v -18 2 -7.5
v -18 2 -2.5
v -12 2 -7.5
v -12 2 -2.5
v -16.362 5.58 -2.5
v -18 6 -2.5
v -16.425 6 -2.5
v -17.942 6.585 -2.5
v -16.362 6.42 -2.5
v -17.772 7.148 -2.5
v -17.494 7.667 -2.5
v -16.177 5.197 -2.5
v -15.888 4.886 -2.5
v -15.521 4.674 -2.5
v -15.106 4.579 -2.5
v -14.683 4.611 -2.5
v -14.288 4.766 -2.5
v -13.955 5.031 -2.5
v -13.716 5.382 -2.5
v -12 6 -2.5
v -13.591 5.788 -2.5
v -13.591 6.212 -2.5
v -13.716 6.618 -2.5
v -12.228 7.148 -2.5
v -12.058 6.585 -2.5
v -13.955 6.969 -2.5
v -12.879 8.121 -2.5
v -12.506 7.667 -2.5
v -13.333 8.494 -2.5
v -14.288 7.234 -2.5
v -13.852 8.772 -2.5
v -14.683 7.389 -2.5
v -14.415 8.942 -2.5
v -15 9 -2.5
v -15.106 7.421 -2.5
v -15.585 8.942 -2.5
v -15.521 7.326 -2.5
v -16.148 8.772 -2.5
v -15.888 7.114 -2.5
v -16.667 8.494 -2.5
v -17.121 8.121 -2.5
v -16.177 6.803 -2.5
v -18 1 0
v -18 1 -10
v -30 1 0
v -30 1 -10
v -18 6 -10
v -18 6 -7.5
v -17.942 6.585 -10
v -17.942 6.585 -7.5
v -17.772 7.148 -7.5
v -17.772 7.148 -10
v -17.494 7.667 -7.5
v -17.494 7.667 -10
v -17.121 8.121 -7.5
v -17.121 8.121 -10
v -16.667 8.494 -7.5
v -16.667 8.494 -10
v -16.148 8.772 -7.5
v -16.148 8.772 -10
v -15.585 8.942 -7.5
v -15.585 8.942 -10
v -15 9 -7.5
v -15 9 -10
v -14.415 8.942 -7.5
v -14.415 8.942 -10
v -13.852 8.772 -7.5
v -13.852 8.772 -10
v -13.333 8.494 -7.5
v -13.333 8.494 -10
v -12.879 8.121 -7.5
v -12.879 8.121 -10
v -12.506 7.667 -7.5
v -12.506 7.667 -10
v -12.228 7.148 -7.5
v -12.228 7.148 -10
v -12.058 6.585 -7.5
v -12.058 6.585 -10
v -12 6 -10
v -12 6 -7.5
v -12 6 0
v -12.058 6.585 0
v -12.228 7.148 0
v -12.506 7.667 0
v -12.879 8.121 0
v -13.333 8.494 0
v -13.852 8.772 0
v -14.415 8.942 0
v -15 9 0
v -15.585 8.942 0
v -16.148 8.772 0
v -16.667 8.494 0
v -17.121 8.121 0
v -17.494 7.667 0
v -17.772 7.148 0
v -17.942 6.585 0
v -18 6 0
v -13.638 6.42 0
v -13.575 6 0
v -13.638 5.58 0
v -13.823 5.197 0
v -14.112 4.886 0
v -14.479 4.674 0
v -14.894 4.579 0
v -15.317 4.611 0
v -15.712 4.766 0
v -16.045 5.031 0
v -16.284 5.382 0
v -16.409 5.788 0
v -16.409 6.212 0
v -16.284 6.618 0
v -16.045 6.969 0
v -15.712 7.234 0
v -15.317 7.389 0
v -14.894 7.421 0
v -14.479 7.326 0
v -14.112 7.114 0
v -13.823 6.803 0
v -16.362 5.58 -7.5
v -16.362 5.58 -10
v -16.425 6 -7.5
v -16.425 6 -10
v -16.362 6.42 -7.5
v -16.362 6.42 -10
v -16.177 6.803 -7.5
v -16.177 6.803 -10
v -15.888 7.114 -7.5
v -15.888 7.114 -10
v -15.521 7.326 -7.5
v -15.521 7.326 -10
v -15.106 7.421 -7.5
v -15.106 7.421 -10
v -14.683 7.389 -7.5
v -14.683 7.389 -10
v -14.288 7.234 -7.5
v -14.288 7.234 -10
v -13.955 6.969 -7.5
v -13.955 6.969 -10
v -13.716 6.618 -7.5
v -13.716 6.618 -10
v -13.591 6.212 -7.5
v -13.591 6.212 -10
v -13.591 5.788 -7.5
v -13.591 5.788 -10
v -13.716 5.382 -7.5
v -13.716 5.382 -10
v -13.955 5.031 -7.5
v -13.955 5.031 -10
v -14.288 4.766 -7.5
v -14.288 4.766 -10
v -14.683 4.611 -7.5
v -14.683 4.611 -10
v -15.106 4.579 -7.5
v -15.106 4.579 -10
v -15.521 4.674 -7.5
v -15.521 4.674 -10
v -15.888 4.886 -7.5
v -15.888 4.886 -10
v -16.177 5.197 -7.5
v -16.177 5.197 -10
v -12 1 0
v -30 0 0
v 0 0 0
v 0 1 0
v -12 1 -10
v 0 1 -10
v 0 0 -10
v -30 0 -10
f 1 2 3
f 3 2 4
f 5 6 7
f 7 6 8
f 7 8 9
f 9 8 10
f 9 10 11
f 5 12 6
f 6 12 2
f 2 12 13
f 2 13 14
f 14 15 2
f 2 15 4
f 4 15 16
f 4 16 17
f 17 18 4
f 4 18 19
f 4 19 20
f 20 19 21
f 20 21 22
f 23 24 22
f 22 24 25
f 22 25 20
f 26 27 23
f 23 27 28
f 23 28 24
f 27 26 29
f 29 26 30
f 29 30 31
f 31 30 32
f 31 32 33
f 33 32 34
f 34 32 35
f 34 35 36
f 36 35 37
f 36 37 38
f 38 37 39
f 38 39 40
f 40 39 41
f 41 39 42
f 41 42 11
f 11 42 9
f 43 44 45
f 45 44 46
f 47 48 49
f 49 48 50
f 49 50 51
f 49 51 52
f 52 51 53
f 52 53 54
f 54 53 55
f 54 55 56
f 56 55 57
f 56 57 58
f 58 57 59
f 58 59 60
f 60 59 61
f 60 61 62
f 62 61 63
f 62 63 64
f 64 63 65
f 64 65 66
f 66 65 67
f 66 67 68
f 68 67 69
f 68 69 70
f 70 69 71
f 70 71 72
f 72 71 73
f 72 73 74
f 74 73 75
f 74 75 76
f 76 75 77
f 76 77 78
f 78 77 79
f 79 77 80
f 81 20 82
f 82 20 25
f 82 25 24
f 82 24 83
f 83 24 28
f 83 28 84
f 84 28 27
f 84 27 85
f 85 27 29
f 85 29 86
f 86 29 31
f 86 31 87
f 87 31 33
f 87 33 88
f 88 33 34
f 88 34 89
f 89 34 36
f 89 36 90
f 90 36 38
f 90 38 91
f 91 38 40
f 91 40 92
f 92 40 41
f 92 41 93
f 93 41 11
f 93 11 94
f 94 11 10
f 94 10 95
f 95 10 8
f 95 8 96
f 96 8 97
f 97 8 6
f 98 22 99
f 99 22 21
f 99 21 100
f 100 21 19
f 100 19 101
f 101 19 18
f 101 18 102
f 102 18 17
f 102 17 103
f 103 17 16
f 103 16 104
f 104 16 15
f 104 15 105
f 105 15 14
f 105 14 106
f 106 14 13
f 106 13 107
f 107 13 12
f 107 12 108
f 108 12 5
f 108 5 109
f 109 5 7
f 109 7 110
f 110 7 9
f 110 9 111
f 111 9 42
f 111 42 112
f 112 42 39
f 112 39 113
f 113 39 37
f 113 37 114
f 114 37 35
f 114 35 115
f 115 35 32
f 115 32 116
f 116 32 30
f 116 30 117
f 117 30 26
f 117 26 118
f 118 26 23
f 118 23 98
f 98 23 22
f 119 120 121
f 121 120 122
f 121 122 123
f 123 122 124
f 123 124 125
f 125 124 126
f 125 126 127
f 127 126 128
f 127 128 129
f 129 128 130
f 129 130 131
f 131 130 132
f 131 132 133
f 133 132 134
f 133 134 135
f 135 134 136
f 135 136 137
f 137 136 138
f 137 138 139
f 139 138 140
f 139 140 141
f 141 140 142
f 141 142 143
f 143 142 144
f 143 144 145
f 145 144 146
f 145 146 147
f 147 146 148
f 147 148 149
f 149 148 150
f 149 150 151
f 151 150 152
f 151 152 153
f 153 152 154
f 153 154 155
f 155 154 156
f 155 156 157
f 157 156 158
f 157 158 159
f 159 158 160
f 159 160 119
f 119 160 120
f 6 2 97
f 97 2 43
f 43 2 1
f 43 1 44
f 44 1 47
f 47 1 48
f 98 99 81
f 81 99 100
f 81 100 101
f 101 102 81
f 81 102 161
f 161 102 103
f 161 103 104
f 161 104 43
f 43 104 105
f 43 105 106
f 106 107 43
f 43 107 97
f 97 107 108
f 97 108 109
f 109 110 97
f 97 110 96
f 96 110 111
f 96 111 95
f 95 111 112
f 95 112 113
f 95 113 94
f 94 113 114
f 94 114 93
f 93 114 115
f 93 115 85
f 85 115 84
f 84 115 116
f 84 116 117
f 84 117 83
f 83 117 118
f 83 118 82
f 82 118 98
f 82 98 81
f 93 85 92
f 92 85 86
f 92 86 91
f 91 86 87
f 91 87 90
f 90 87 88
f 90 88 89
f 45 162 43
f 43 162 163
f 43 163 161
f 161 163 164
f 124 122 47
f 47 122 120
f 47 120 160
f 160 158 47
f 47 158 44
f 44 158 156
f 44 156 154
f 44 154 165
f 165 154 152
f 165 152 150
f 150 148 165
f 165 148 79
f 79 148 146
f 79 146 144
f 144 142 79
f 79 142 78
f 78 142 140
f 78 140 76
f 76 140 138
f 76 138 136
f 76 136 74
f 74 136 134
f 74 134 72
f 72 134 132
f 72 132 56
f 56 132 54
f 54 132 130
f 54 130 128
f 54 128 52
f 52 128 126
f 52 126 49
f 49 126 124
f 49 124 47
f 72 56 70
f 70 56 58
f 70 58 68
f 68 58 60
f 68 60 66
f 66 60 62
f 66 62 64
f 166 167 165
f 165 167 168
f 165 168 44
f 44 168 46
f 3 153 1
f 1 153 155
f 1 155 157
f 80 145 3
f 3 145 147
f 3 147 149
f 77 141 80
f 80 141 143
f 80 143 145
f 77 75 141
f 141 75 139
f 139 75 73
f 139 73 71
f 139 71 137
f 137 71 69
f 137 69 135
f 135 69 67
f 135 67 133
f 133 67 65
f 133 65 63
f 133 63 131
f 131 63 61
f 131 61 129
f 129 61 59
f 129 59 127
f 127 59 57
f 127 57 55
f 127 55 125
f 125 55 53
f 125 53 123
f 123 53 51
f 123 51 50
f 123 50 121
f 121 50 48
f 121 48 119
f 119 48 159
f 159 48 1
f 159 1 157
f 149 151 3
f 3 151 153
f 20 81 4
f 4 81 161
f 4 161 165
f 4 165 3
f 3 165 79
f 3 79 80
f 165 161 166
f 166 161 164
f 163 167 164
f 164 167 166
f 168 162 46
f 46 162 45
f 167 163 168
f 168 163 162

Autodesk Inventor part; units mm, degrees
ref_plane "YZ Plane" through (0, 0, 0) normal (1, 0, 0) x (0, 1, 0)
ref_plane "XZ Plane" through (0, 0, 0) normal (0, 1, 0) x (-1, 0, 0)
ref_plane "XY Plane" through (0, 0, 0) normal (0, 0, 1) x (1, 0, 0)
sketch "Sketch1" plane through (0, 0, 0) normal (0, 1, 0) x (-1, 0, 0)
  line L0 (0, 0) -> (30, 0)
  line L1 (30, 0) -> (30, -10)
  line L2 (30, -10) -> (0, -10)
  line L3 (0, -10) -> (0, 0)
  dimension "d0" = 10
  dimension "d1" = 30
extrude "Extrusion1" add sketch "Sketch1" along normal blind 1
sketch "Sketch2" plane through (0, 1, 0) normal (0, 1, 0) x (1, 0, 0)
  line L0 (-30, 10) -> (-30, 0) projected
  line L1 (-30, 5) -> (-15, 5)
  line L2 (-15, 5) -> (-15, 2.5)
  line L3 (-15, 2.5) -> (-18, 2.5)
  line L4 (-18, 2.5) -> (-12, 2.5)
  line L5 (-12, 2.5) -> (-12, 0)
  line L6 (-12, 0) -> (-18, 0)
  line L7 (-18, 0) -> (-18, 2.5)
  line L8 (-15, 5) -> (-15, 7.5)
  line L9 (-15, 7.5) -> (-18, 7.5)
  line L10 (-18, 7.5) -> (-12, 7.5)
  line L11 (-12, 7.5) -> (-12, 10)
  line L12 (-12, 10) -> (-18, 10)
  line L13 (-18, 10) -> (-18, 7.5)
  point P0 (0, 0)
  dimension "d4" = 15
  dimension "d5" = 2.5
  dimension "d20" = 3
  dimension "d21" = 2.5
  dimension "d22" = 6
  dimension "d23" = 2.5
  dimension "d24" = 3
  dimension "d25" = 2.5
  dimension "d26" = 6
extrude "Extrusion2" add sketch "Sketch2" along normal blind 8
sketch "Sketch4" plane through (-30, 0, 0) normal (0, 0, 1) x (1, 0, 0)
  line L0 (12, 9) -> (18, 9) projected
  line L1 (15, 9) -> (15, 6)
  circle A0 centre (15, 6) radius 3
  circle A1 centre (15, 6) radius 1.425
  line L2 (18, 1) -> (18, 9) projected
  line L3 (12, 9) -> (18, 9)
  line L4 (18, 9) -> (18, 3)
  line L5 (18, 3) -> (12, 3)
  line L6 (12, 3) -> (12, 9)
  point P0 (30, 0)
  point P1 (12, 6)
  point P2 (18, 6)
  dimension "d27" = 3
  dimension "d28" = 2.85
extrude "Extrusion4" cut sketch "Sketch4" against normal through all contours L0 A0 L6 | A1 | L0 L2 A0
sketch "Sketch5" plane through (0, 1, 0) normal (0, 1, 0) x (1, 0, 0)
  line L0 (-18, 2.5) -> (-18, 0) projected
  line L1 (-12, 7.5) -> (-18, 7.5) projected
  line L2 (-18, 2.5) -> (-12, 2.5)
  line L3 (-12, 2.5) -> (-12, 7.5)
  line L4 (-12, 7.5) -> (-18, 7.5)
  line L5 (-18, 7.5) -> (-18, 2.5)
  point P0 (0, 0)
extrude "Extrusion5" add sketch "Sketch5" along normal blind 1
properties part number "FingerTip"
